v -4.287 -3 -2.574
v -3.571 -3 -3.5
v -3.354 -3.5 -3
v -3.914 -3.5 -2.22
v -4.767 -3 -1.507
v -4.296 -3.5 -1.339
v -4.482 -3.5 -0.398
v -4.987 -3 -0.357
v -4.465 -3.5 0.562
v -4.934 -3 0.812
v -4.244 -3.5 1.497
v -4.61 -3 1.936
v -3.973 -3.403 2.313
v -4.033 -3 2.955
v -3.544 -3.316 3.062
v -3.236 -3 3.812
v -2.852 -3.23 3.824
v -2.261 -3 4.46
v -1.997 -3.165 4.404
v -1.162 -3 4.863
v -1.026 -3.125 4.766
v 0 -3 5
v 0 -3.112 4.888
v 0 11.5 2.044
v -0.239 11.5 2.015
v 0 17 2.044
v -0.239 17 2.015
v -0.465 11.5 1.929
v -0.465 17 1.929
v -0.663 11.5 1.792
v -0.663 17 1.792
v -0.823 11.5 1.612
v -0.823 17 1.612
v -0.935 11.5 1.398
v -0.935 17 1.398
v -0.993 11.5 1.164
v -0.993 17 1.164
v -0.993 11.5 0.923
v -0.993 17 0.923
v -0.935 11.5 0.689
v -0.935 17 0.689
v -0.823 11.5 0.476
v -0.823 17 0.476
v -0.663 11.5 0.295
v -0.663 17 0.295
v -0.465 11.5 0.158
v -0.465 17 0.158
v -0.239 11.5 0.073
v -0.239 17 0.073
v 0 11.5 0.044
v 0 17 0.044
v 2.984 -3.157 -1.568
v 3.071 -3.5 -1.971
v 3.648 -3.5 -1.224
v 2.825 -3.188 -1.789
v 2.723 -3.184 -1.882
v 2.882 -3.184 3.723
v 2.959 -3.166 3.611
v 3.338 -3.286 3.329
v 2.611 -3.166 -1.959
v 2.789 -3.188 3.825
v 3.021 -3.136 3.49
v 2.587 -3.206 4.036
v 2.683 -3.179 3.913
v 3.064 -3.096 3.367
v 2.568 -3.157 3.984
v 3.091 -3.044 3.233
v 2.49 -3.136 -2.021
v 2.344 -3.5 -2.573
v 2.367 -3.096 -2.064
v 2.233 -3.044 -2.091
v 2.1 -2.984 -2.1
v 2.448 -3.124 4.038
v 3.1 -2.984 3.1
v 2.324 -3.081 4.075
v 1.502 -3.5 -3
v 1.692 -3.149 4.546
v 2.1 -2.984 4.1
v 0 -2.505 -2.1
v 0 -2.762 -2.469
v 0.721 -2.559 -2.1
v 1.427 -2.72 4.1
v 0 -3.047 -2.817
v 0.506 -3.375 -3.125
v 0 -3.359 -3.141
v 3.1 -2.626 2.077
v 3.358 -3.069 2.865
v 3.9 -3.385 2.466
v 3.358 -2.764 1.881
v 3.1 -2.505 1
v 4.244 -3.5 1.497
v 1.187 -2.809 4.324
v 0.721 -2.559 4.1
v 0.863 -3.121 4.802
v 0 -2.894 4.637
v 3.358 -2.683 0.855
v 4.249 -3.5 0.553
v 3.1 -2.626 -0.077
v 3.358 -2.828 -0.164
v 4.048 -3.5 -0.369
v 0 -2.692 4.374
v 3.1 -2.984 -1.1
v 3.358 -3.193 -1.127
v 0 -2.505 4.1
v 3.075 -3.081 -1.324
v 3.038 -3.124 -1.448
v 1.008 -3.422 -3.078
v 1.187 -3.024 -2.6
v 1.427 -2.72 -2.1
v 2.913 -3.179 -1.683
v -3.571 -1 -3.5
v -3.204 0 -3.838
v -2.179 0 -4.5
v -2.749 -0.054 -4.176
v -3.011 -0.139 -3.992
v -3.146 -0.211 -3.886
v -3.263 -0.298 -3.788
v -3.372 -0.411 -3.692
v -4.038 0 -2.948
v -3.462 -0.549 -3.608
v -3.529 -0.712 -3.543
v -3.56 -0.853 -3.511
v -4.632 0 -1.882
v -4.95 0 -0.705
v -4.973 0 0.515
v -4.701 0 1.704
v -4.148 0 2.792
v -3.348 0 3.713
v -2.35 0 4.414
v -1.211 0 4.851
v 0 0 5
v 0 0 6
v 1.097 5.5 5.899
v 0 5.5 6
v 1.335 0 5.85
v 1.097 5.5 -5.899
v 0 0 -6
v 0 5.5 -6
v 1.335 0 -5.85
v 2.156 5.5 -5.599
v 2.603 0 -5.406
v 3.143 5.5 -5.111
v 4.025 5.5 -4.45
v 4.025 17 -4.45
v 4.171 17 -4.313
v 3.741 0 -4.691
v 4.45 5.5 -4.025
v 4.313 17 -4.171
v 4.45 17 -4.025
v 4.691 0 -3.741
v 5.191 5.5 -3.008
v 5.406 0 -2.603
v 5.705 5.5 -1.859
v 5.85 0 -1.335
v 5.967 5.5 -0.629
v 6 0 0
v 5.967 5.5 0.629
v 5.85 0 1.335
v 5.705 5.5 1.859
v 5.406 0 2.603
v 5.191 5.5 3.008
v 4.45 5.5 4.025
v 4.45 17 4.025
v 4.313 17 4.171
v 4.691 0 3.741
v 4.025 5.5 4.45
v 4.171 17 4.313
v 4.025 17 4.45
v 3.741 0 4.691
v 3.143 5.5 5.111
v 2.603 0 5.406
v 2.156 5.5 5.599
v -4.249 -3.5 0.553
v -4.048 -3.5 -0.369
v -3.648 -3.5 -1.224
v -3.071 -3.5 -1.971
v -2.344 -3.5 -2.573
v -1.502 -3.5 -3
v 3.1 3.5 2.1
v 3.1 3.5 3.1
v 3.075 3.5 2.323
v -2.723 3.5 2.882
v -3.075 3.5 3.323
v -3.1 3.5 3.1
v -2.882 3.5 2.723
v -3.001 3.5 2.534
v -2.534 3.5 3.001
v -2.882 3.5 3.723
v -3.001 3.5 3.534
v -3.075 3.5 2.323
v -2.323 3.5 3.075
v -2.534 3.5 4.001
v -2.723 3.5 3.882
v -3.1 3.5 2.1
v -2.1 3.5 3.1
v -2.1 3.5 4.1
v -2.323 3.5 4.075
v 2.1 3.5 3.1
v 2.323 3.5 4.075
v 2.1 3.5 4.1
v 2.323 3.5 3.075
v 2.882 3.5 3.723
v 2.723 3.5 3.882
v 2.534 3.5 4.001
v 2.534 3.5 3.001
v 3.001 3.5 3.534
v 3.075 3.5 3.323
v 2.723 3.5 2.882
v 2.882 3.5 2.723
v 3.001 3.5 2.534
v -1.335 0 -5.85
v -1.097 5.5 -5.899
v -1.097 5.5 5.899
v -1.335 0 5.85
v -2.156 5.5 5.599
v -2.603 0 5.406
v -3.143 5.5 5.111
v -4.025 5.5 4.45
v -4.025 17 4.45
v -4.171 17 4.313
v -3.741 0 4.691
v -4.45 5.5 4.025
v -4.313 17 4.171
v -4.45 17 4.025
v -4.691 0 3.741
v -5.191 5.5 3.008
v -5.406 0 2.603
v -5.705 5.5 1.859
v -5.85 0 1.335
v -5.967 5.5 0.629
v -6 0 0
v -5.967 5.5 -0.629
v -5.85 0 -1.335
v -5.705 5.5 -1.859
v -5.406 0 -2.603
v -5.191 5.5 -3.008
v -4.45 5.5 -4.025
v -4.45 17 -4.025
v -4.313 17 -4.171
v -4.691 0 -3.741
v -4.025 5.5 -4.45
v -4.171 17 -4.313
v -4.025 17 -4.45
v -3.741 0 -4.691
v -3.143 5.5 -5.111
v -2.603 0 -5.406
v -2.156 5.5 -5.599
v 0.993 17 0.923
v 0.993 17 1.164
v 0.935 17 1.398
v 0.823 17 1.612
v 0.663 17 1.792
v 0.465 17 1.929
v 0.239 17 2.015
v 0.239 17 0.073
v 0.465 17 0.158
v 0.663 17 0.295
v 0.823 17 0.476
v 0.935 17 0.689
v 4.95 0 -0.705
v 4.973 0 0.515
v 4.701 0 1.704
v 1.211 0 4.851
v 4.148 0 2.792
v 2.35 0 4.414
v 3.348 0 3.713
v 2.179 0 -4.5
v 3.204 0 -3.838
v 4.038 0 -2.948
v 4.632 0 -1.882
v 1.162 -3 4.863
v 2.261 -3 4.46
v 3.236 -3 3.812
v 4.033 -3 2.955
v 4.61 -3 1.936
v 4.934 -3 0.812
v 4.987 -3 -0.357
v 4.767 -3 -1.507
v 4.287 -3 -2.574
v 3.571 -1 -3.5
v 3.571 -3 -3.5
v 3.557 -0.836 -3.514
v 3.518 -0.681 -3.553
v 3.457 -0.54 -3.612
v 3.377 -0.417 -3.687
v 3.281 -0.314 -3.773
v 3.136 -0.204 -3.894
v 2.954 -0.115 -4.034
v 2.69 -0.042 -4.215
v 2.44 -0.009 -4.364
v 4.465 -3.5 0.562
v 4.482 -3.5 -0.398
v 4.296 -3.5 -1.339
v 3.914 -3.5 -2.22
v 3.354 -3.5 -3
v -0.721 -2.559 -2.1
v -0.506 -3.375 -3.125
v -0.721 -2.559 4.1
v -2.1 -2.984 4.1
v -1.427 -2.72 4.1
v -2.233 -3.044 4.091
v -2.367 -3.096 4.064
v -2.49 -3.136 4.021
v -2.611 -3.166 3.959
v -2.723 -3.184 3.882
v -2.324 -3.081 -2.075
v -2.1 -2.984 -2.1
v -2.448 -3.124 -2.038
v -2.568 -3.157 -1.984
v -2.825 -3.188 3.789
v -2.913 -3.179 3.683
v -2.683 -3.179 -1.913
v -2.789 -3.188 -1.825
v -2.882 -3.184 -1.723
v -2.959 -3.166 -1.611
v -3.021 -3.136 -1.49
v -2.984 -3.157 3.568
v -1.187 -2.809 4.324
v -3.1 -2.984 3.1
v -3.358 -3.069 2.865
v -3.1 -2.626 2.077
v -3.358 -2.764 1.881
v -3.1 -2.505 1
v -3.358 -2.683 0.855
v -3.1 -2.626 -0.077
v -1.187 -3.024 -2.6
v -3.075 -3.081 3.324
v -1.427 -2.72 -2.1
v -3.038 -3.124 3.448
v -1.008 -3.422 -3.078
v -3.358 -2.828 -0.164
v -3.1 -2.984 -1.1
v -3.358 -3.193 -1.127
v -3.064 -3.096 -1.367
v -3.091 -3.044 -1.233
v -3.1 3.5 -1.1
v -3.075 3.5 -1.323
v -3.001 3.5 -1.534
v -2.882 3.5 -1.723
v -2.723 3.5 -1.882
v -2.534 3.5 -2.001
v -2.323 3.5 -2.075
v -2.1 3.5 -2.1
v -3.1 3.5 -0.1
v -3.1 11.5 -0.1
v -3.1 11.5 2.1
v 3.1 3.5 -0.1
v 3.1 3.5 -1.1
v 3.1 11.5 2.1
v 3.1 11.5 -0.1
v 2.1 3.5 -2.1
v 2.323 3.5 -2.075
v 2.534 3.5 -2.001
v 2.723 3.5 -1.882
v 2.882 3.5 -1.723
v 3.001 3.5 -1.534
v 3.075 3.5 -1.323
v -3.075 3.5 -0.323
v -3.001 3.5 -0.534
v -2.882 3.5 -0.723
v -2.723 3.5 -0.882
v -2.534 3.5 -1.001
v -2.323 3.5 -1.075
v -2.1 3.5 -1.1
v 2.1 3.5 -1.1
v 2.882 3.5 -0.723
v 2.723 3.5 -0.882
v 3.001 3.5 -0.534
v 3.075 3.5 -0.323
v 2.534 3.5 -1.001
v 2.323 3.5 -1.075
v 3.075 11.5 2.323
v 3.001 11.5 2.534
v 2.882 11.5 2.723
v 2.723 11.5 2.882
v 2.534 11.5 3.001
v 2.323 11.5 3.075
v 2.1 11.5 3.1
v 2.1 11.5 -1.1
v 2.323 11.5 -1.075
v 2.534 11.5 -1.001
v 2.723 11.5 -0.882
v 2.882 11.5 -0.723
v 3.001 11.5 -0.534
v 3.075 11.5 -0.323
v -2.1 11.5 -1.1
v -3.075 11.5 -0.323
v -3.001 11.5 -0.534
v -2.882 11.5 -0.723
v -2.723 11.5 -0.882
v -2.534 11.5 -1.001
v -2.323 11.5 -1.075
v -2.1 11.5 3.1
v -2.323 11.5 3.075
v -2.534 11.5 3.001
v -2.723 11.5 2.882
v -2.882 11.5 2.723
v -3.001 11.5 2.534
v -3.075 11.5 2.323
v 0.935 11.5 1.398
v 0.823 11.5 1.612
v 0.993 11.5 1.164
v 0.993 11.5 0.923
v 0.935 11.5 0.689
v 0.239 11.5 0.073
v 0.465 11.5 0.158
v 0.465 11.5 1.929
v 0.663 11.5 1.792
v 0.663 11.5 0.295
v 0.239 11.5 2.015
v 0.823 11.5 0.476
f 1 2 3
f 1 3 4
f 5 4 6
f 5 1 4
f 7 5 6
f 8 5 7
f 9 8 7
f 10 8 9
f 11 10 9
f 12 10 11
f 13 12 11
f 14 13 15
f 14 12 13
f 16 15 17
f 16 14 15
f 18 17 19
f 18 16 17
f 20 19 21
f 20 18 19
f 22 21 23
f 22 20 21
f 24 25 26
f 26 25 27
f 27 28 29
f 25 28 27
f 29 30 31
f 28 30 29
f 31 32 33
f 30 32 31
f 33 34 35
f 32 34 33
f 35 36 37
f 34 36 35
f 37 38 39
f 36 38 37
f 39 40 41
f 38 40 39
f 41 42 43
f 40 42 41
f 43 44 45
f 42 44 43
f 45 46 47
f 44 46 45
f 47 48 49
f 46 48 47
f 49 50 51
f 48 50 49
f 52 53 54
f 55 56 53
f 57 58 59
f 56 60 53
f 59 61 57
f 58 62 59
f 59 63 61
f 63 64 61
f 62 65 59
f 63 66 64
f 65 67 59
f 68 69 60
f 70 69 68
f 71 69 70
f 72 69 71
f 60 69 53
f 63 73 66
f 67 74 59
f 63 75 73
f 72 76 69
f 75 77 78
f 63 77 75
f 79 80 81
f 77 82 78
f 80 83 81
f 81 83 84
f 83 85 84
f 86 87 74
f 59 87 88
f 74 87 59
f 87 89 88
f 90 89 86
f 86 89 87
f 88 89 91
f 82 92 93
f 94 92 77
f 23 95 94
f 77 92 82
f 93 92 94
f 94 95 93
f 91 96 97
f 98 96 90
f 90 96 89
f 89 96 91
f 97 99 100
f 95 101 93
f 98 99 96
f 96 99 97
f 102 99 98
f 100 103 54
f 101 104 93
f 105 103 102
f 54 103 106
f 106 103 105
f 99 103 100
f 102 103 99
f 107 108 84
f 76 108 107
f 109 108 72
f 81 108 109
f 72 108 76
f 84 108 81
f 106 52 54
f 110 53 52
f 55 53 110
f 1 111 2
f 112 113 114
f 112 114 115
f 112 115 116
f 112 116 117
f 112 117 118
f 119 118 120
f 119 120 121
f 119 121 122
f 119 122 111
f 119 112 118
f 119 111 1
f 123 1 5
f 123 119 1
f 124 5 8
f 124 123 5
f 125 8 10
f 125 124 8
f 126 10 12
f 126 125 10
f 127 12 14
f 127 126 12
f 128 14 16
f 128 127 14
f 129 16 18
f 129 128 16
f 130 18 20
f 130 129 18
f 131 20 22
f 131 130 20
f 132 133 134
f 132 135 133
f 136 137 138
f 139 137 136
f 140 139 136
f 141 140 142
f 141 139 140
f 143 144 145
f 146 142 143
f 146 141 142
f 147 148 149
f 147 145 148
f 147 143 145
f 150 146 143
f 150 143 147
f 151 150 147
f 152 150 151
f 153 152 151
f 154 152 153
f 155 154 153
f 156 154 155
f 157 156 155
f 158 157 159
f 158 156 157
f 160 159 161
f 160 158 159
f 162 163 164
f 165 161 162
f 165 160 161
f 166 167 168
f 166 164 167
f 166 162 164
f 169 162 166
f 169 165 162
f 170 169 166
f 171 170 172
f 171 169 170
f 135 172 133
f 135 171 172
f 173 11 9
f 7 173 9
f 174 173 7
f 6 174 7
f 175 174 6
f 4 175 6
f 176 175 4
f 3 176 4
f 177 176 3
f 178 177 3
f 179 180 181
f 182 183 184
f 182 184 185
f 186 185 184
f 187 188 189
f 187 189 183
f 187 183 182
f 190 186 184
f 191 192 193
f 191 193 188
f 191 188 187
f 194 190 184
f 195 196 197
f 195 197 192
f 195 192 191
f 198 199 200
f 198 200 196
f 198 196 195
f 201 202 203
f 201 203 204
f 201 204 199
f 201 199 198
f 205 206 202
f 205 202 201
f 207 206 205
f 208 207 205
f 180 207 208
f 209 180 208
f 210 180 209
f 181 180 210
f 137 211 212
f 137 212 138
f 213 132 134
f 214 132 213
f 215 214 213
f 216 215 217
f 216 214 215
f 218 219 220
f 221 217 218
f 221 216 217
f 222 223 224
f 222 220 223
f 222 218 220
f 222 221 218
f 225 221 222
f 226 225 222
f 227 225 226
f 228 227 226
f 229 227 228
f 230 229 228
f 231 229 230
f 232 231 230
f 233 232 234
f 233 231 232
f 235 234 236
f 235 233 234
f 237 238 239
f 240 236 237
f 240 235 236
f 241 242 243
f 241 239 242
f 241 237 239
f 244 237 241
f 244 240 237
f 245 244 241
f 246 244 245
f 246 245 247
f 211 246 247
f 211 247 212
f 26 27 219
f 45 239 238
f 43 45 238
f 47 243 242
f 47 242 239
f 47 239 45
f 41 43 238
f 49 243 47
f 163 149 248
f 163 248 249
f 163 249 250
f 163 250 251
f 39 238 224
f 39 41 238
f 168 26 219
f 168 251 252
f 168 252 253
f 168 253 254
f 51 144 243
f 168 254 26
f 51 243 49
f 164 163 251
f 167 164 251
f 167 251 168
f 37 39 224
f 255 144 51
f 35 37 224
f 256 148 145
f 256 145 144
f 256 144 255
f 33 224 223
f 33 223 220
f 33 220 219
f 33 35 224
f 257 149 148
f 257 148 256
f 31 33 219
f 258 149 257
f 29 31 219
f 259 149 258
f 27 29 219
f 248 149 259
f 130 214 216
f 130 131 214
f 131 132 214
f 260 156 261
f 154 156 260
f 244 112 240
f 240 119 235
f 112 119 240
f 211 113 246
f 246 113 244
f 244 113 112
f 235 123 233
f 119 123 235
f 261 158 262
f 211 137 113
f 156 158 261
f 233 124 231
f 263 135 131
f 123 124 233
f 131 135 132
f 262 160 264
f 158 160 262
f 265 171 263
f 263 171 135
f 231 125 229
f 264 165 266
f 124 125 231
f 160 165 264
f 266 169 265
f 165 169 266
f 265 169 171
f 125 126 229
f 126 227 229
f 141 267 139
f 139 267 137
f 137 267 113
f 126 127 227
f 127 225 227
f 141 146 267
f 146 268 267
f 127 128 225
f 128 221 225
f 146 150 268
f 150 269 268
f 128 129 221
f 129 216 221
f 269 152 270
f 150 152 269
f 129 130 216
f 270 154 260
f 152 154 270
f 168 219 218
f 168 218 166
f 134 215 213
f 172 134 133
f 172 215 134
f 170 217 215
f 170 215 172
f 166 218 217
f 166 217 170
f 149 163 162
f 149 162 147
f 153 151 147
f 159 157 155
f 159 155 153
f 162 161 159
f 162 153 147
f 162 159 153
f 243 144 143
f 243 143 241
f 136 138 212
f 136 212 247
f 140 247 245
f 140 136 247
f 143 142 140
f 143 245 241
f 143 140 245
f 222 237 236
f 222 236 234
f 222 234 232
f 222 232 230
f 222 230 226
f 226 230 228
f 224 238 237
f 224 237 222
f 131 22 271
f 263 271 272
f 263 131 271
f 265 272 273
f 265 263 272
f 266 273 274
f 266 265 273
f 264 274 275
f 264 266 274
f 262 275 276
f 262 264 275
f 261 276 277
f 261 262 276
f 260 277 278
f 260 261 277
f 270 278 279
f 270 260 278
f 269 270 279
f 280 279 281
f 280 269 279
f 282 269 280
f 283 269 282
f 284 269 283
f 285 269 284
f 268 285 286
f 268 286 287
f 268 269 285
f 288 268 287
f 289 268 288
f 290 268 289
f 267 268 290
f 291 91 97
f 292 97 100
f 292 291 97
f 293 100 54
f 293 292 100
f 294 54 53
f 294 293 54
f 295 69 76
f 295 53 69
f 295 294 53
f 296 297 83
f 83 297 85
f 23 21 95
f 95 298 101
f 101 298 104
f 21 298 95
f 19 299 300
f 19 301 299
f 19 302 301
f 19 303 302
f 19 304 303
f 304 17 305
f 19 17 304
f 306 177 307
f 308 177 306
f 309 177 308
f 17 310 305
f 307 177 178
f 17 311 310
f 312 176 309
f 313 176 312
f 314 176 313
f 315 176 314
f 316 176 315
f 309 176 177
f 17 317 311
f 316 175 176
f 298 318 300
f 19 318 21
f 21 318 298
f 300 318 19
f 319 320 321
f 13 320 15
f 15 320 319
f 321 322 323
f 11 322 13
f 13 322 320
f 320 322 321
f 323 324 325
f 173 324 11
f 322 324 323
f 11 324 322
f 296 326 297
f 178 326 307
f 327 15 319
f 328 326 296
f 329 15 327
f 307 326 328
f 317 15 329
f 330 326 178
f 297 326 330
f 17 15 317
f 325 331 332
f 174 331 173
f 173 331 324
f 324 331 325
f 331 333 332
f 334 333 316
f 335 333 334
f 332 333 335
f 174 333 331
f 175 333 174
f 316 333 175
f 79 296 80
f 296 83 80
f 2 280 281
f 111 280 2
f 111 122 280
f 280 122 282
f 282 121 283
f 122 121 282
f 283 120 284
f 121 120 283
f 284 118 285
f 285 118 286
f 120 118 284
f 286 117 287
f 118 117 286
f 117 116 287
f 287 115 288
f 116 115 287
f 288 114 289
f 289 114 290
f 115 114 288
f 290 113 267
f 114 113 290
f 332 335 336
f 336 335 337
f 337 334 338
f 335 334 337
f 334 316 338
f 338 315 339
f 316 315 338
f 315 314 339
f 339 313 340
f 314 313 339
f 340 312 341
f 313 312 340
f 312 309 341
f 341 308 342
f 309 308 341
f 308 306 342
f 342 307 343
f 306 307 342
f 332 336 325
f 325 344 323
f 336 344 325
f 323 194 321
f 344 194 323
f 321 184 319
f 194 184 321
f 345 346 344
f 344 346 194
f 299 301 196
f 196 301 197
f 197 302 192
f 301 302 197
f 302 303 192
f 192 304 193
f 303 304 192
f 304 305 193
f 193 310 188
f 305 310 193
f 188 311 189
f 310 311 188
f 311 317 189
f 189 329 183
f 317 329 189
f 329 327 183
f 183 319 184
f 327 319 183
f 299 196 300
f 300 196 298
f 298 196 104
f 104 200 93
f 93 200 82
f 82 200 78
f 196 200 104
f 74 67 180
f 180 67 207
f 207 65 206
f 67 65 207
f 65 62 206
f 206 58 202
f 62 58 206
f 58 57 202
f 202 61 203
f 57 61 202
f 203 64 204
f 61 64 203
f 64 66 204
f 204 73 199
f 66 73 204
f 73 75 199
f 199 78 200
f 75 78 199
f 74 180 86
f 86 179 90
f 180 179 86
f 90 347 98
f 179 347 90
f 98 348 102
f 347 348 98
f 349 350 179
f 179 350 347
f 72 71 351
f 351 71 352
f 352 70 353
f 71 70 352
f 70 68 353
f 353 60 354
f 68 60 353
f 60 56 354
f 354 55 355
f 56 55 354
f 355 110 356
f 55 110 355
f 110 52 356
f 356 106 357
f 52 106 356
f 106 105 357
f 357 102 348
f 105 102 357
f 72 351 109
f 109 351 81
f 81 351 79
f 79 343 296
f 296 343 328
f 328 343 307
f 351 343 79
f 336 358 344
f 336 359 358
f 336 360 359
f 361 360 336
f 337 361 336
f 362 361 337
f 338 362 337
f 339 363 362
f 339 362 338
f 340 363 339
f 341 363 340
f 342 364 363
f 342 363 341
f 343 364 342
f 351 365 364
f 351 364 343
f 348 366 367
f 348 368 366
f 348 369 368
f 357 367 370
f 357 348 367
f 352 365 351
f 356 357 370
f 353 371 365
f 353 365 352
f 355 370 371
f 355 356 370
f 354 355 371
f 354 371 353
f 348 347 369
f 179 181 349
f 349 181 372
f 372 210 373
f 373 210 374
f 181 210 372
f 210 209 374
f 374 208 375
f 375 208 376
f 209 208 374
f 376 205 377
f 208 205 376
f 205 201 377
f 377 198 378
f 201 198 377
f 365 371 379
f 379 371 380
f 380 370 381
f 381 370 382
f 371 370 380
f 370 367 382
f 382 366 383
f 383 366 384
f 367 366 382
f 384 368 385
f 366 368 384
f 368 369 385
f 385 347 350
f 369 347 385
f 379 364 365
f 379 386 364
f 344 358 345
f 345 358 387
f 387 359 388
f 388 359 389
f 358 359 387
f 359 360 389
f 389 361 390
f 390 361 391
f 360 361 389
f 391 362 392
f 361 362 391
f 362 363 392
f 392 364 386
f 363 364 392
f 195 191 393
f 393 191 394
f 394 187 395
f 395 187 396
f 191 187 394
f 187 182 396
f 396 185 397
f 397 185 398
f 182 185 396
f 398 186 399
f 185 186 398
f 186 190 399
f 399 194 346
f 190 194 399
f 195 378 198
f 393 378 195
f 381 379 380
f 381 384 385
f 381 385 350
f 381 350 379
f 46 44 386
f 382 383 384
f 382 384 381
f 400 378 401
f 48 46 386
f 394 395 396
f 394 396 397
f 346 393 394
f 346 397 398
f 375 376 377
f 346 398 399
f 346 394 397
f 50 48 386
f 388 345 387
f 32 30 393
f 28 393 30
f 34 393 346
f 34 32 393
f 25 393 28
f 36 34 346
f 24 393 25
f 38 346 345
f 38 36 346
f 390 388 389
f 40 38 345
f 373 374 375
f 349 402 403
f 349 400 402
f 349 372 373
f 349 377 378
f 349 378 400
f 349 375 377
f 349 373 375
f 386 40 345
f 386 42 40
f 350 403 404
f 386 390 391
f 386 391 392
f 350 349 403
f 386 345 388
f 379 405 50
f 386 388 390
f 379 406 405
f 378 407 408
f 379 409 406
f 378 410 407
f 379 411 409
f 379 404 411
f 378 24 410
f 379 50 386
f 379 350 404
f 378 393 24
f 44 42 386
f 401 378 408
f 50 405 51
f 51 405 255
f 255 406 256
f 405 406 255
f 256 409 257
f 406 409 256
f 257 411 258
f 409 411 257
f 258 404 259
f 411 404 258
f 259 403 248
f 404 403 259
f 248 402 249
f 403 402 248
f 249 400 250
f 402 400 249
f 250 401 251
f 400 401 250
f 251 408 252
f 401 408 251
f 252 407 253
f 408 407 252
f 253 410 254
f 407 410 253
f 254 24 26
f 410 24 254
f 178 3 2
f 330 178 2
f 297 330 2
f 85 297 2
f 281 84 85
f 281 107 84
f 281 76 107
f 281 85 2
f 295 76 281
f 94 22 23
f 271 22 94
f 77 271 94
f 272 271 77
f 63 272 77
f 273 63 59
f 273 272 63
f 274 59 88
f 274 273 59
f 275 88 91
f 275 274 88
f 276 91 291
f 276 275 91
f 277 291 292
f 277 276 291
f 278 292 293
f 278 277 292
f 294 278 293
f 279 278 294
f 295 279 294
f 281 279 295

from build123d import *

# Parameters (mm, degrees)
SKETCH1_R               = 6
BOSS_EXTRUDE1_DEPTH     = 17
SKETCH2_OUTSIDE_W       = 18.804
SKETCH2_OUTSIDE_H       = 18.804
SKETCH2_OUTSIDE_W_2     = 8.9
SKETCH2_OUTSIDE_H_2     = 8.9
CUT_EXTRUDE1_DEPTH      = 11.5
SKETCH3_R               = 5
BOSS_EXTRUDE2_DEPTH     = 3.5
CUT_EXTRUDE2_DEPTH      = 20
CUT_EXTRUDE2_DEPTH_BACK = 20
SKETCH5_W               = 1.5
SKETCH5_H               = 3.5
FILLET2_R               = 1
CUT_EXTRUDE3_DEPTH      = 7
CUT_EXTRUDE4_DEPTH      = 8
SKETCH8_R               = 1
CUT_EXTRUDE5_DEPTH      = 18.233688027
CHAMFER1_START          = -6
CHAMFER1_2_OUTLINE_W    = 10
CHAMFER1_2_OUTLINE_H    = 4
CHAMFER1_2_DEPTH        = 1.403805922


with BuildPart() as part:
    # Sketch1 → Boss-Extrude1 (new body)
    with BuildSketch(Plane(origin=(0, 0, 0), x_dir=(1, 0, 0), z_dir=(0, 1, 0))):
        with Locations(Location((0, 0, 0), (0, 0, 270))):
            Circle(SKETCH1_R)
    extrude(amount=BOSS_EXTRUDE1_DEPTH)

    # Sketch2 outside → Cut-Extrude1 (cut)
    with BuildSketch(Plane(origin=(0, 17, 0), x_dir=(1, 0, 0), z_dir=(0, 1, 0))):
        Rectangle(SKETCH2_OUTSIDE_W, SKETCH2_OUTSIDE_H)
        Rectangle(SKETCH2_OUTSIDE_W_2, SKETCH2_OUTSIDE_H_2, mode=Mode.SUBTRACT)
    extrude(amount=-CUT_EXTRUDE1_DEPTH, mode=Mode.SUBTRACT)

    # Sketch3 → Boss-Extrude2 (add)
    with BuildSketch(Plane.XZ):
        with Locations(Location((0, 0, 0), (0, 0, 270))):
            Circle(SKETCH3_R)
    extrude(amount=BOSS_EXTRUDE2_DEPTH)

    # Sketch4 → Cut-Revolve2 (revolve, cut)
    with BuildSketch(Plane(origin=(0, -7.347807266, 1), x_dir=(0, 0, -1), z_dir=(1, 0, 0))):
        with BuildLine():
            Line((0, 5.75), (0, -5.75))
            ThreePointArc((0, -5.75), (-5.75, 0), (0, 5.75))
        make_face()
    revolve(axis=Axis((0, -1.597807266, 1), (0, -1, 0)), mode=Mode.SUBTRACT)

    # Sketch5 → Cut-Extrude2 (cut, two sides: drawn at the far end of the back side and taken through both)
    with BuildSketch(Plane(origin=(0, 0, 0), x_dir=(0, 0, -1), z_dir=(1, 0, 0)).offset(-CUT_EXTRUDE2_DEPTH_BACK)):
        with Locations((4.25, -1.75)):
            Rectangle(SKETCH5_W, SKETCH5_H)
    extrude(amount=CUT_EXTRUDE2_DEPTH + CUT_EXTRUDE2_DEPTH_BACK, mode=Mode.SUBTRACT)

    # Fillet2
    fillet2_edges = [part.edges().sort_by_distance(p)[0] for p in [
        (0, 0, -3.5),
    ]]
    fillet(fillet2_edges, radius=FILLET2_R)

    # Sketch6 → Cut-Extrude3 (cut)
    with BuildSketch(Plane.XZ.offset(3.5)):
        with BuildLine():
            Line((2.1, -2.1), (-2.1, -2.1))
            ThreePointArc((-2.1, -2.1), (-2.807106781, -1.807106781), (-3.1, -1.1))
            Line((-3.1, -1.1), (-3.1, 3.1))
            ThreePointArc((-3.1, 3.1), (-2.807106781, 3.807106781), (-2.1, 4.1))
            Line((-2.1, 4.1), (2.1, 4.1))
            ThreePointArc((2.1, 4.1), (2.807106781, 3.807106781), (3.1, 3.1))
            Line((3.1, 3.1), (3.1, -1.1))
            ThreePointArc((3.1, -1.1), (2.807106781, -1.807106781), (2.1, -2.1))
        make_face()
    extrude(amount=-CUT_EXTRUDE3_DEPTH, mode=Mode.SUBTRACT)

    # Sketch7 → Cut-Extrude4 (cut)
    with BuildSketch(Plane.XZ.offset(-3.5)):
        with BuildLine():
            Line((2.1, -1.1), (-2.1, -1.1))
            ThreePointArc((-2.1, -1.1), (-2.807106781, -0.807106781), (-3.1, -0.1))
            Line((-3.1, -0.1), (-3.1, 2.1))
            ThreePointArc((-3.1, 2.1), (-2.807106781, 2.807106781), (-2.1, 3.1))
            Line((-2.1, 3.1), (2.1, 3.1))
            ThreePointArc((2.1, 3.1), (2.807106781, 2.807106781), (3.1, 2.1))
            Line((3.1, 2.1), (3.1, -0.1))
            ThreePointArc((3.1, -0.1), (2.807106781, -0.807106781), (2.1, -1.1))
        make_face()
    extrude(amount=-CUT_EXTRUDE4_DEPTH, mode=Mode.SUBTRACT)

    # Sketch8 → Cut-Extrude5 (cut, through all)
    with BuildSketch(Plane.XZ.offset(-11.5)):
        with Locations(Location((0, 1.043592984, 0), (0, 0, 270))):
            Circle(SKETCH8_R)
    extrude(amount=-CUT_EXTRUDE5_DEPTH, mode=Mode.SUBTRACT)

    # Chamfer1: read off the stored shape, not the designer's step
    # Chamfer1 outline → Chamfer1 (revolve, cut)
    with BuildSketch(Plane.XY):
        Polygon((5, -3), (4.5, -3.5), (5, -3.5), align=None)
    revolve(axis=Axis((0, 0, 0), (0, 1, 0)), mode=Mode.SUBTRACT)

    # Chamfer1 2 outline → Chamfer1 2 (cut)
    with BuildSketch(Plane(origin=(0, 0, 0), x_dir=(1, 0, 0), z_dir=(0, 0.707106781186544, 0.707106781186551)).offset(CHAMFER1_START)):
        Rectangle(CHAMFER1_2_OUTLINE_W, CHAMFER1_2_OUTLINE_H)
    extrude(amount=CHAMFER1_2_DEPTH, mode=Mode.SUBTRACT)


solid = part.part
